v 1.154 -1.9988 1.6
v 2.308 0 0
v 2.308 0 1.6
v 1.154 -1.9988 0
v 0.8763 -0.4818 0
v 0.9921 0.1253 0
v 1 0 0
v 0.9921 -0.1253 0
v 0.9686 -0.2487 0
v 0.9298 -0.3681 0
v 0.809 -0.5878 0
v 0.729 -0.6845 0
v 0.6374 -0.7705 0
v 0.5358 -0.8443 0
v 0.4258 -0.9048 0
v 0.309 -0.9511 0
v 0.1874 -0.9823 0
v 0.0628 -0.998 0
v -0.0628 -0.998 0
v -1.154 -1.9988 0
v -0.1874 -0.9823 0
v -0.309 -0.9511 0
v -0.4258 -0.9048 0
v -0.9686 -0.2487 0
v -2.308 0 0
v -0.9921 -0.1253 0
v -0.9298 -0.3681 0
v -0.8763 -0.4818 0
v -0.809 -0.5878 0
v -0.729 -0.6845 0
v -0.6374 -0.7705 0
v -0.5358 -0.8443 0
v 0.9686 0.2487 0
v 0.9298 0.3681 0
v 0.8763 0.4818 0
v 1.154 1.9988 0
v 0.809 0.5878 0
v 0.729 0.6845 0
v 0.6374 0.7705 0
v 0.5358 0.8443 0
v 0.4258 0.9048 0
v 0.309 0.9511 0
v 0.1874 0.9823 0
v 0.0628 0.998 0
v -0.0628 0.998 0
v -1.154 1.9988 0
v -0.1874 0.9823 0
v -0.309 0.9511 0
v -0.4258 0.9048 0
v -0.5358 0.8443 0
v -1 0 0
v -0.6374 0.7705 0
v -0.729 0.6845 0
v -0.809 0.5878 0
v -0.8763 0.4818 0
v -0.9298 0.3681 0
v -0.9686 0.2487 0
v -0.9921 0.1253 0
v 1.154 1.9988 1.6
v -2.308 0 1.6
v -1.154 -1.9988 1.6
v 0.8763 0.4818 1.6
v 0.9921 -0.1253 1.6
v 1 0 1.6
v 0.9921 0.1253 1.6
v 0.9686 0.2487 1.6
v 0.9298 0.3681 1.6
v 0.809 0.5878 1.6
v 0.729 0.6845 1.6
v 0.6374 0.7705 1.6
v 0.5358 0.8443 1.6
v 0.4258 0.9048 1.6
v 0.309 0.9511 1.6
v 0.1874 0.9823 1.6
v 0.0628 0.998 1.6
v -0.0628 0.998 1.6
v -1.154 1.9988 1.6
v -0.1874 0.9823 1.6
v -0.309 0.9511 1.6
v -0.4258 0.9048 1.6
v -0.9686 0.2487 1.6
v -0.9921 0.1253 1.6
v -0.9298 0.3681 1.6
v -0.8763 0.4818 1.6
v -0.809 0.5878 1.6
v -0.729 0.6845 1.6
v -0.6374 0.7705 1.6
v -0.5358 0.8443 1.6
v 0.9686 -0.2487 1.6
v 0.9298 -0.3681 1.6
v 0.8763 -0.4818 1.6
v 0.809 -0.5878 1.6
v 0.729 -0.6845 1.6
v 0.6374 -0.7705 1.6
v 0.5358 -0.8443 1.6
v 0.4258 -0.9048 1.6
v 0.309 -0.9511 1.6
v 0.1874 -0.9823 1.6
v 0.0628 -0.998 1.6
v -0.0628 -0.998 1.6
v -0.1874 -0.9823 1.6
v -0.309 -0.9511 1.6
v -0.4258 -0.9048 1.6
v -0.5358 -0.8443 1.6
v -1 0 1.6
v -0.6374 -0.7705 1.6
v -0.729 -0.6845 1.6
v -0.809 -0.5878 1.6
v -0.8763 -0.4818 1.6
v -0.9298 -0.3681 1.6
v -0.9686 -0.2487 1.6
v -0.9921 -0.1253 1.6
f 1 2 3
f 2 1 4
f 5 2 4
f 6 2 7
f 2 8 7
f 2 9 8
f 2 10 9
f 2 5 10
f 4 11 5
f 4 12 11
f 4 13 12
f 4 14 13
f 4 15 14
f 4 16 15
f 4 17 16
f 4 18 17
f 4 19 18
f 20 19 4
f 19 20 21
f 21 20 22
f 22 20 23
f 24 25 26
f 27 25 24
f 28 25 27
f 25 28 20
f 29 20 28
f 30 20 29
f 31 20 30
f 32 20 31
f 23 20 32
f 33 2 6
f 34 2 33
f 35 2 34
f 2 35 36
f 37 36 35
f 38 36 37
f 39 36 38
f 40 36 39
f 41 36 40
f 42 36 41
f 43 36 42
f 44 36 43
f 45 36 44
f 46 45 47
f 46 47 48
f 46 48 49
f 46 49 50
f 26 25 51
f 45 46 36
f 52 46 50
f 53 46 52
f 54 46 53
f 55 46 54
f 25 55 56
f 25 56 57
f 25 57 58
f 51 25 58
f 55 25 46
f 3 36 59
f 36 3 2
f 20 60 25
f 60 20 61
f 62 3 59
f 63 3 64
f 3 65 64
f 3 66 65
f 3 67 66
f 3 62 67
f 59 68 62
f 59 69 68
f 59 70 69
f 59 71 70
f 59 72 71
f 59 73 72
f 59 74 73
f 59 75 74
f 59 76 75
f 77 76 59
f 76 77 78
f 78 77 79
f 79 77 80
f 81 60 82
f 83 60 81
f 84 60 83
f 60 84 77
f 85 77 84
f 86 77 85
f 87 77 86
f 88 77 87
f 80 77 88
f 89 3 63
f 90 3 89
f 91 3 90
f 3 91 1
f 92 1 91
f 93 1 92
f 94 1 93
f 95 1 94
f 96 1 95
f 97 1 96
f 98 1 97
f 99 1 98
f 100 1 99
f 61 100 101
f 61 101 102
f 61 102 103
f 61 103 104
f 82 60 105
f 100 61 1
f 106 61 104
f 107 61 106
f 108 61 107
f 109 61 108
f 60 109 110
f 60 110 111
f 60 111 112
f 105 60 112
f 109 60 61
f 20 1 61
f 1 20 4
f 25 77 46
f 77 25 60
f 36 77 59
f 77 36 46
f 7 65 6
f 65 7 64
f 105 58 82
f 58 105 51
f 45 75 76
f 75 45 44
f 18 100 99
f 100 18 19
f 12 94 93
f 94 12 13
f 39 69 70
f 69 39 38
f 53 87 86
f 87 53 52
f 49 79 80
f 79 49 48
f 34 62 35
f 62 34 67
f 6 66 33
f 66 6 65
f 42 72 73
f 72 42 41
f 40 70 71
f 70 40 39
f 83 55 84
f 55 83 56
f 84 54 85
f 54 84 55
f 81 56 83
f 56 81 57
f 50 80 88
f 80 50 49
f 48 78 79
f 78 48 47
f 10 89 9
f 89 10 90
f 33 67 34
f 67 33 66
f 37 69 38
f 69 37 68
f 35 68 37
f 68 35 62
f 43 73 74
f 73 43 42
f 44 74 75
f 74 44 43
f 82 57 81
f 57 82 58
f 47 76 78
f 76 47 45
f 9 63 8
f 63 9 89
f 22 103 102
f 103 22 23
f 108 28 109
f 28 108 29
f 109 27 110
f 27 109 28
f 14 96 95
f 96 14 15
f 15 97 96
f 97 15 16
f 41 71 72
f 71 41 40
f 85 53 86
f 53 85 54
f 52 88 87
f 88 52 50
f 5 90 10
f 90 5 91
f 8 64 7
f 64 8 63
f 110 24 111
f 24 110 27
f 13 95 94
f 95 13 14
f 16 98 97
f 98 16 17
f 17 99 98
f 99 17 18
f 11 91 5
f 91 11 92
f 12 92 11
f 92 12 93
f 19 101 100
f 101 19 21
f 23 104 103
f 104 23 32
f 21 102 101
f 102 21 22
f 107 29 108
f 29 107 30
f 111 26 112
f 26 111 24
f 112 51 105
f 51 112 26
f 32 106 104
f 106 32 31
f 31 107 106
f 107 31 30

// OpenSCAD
$fn = 50;


difference() {
	union() {
		translate(v = [0, 0, 0]) {
			rotate(a = [0, 0, 0]) {
				#translate(v = [0, 0, 0]) {
					rotate(a = [0, 0, 0]) {
						linear_extrude(height = 1.6000000000) {
							polygon(points = [[2.3080000000, 0.0000000000], [1.1540000000, 1.9987866319], [-1.1540000000, 1.9987866319], [-2.3080000000, 0.0000000000], [-1.1540000000, -1.9987866319], [1.1540000000, -1.9987866319]]);
						}
					}
				}
			}
		}
	}
	union() {
		translate(v = [0, 0, -10]) {
			rotate(a = [0, 0, 0]) {
				cylinder(h = 100, r = 1.0000000000);
			}
		}
	}
}
